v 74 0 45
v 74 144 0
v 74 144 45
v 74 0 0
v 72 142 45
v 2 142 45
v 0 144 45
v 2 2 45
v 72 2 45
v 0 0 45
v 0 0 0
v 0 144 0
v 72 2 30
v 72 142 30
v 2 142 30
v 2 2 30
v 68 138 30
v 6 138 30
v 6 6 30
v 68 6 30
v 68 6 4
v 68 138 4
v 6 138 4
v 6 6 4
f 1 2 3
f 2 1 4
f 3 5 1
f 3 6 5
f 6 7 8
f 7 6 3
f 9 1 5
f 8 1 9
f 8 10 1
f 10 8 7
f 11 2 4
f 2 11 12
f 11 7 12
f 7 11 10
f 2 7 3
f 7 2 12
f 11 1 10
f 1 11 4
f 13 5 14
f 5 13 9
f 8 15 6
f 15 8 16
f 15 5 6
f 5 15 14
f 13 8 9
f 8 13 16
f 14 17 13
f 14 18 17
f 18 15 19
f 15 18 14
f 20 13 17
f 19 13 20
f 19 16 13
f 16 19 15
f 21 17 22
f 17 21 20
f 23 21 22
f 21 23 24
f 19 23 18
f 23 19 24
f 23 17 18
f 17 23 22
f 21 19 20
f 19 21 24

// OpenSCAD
// file: drawer.scad
module drawer(width=10, length=20, height=5, wall_strength=2){
    difference(){
        cube([width, length, height]);
        translate([wall_strength, wall_strength, wall_strength]){
            cube([width-wall_strength*2, length-wall_strength*2, height]);
        }
    }
}
// main file
use <drawer.scad>

union(){
    
drawer(74, 144, 45, wall_strength=2);
translate([2,2,0]){
    
drawer(70, 140, 30, wall_strength=4);
}
}
